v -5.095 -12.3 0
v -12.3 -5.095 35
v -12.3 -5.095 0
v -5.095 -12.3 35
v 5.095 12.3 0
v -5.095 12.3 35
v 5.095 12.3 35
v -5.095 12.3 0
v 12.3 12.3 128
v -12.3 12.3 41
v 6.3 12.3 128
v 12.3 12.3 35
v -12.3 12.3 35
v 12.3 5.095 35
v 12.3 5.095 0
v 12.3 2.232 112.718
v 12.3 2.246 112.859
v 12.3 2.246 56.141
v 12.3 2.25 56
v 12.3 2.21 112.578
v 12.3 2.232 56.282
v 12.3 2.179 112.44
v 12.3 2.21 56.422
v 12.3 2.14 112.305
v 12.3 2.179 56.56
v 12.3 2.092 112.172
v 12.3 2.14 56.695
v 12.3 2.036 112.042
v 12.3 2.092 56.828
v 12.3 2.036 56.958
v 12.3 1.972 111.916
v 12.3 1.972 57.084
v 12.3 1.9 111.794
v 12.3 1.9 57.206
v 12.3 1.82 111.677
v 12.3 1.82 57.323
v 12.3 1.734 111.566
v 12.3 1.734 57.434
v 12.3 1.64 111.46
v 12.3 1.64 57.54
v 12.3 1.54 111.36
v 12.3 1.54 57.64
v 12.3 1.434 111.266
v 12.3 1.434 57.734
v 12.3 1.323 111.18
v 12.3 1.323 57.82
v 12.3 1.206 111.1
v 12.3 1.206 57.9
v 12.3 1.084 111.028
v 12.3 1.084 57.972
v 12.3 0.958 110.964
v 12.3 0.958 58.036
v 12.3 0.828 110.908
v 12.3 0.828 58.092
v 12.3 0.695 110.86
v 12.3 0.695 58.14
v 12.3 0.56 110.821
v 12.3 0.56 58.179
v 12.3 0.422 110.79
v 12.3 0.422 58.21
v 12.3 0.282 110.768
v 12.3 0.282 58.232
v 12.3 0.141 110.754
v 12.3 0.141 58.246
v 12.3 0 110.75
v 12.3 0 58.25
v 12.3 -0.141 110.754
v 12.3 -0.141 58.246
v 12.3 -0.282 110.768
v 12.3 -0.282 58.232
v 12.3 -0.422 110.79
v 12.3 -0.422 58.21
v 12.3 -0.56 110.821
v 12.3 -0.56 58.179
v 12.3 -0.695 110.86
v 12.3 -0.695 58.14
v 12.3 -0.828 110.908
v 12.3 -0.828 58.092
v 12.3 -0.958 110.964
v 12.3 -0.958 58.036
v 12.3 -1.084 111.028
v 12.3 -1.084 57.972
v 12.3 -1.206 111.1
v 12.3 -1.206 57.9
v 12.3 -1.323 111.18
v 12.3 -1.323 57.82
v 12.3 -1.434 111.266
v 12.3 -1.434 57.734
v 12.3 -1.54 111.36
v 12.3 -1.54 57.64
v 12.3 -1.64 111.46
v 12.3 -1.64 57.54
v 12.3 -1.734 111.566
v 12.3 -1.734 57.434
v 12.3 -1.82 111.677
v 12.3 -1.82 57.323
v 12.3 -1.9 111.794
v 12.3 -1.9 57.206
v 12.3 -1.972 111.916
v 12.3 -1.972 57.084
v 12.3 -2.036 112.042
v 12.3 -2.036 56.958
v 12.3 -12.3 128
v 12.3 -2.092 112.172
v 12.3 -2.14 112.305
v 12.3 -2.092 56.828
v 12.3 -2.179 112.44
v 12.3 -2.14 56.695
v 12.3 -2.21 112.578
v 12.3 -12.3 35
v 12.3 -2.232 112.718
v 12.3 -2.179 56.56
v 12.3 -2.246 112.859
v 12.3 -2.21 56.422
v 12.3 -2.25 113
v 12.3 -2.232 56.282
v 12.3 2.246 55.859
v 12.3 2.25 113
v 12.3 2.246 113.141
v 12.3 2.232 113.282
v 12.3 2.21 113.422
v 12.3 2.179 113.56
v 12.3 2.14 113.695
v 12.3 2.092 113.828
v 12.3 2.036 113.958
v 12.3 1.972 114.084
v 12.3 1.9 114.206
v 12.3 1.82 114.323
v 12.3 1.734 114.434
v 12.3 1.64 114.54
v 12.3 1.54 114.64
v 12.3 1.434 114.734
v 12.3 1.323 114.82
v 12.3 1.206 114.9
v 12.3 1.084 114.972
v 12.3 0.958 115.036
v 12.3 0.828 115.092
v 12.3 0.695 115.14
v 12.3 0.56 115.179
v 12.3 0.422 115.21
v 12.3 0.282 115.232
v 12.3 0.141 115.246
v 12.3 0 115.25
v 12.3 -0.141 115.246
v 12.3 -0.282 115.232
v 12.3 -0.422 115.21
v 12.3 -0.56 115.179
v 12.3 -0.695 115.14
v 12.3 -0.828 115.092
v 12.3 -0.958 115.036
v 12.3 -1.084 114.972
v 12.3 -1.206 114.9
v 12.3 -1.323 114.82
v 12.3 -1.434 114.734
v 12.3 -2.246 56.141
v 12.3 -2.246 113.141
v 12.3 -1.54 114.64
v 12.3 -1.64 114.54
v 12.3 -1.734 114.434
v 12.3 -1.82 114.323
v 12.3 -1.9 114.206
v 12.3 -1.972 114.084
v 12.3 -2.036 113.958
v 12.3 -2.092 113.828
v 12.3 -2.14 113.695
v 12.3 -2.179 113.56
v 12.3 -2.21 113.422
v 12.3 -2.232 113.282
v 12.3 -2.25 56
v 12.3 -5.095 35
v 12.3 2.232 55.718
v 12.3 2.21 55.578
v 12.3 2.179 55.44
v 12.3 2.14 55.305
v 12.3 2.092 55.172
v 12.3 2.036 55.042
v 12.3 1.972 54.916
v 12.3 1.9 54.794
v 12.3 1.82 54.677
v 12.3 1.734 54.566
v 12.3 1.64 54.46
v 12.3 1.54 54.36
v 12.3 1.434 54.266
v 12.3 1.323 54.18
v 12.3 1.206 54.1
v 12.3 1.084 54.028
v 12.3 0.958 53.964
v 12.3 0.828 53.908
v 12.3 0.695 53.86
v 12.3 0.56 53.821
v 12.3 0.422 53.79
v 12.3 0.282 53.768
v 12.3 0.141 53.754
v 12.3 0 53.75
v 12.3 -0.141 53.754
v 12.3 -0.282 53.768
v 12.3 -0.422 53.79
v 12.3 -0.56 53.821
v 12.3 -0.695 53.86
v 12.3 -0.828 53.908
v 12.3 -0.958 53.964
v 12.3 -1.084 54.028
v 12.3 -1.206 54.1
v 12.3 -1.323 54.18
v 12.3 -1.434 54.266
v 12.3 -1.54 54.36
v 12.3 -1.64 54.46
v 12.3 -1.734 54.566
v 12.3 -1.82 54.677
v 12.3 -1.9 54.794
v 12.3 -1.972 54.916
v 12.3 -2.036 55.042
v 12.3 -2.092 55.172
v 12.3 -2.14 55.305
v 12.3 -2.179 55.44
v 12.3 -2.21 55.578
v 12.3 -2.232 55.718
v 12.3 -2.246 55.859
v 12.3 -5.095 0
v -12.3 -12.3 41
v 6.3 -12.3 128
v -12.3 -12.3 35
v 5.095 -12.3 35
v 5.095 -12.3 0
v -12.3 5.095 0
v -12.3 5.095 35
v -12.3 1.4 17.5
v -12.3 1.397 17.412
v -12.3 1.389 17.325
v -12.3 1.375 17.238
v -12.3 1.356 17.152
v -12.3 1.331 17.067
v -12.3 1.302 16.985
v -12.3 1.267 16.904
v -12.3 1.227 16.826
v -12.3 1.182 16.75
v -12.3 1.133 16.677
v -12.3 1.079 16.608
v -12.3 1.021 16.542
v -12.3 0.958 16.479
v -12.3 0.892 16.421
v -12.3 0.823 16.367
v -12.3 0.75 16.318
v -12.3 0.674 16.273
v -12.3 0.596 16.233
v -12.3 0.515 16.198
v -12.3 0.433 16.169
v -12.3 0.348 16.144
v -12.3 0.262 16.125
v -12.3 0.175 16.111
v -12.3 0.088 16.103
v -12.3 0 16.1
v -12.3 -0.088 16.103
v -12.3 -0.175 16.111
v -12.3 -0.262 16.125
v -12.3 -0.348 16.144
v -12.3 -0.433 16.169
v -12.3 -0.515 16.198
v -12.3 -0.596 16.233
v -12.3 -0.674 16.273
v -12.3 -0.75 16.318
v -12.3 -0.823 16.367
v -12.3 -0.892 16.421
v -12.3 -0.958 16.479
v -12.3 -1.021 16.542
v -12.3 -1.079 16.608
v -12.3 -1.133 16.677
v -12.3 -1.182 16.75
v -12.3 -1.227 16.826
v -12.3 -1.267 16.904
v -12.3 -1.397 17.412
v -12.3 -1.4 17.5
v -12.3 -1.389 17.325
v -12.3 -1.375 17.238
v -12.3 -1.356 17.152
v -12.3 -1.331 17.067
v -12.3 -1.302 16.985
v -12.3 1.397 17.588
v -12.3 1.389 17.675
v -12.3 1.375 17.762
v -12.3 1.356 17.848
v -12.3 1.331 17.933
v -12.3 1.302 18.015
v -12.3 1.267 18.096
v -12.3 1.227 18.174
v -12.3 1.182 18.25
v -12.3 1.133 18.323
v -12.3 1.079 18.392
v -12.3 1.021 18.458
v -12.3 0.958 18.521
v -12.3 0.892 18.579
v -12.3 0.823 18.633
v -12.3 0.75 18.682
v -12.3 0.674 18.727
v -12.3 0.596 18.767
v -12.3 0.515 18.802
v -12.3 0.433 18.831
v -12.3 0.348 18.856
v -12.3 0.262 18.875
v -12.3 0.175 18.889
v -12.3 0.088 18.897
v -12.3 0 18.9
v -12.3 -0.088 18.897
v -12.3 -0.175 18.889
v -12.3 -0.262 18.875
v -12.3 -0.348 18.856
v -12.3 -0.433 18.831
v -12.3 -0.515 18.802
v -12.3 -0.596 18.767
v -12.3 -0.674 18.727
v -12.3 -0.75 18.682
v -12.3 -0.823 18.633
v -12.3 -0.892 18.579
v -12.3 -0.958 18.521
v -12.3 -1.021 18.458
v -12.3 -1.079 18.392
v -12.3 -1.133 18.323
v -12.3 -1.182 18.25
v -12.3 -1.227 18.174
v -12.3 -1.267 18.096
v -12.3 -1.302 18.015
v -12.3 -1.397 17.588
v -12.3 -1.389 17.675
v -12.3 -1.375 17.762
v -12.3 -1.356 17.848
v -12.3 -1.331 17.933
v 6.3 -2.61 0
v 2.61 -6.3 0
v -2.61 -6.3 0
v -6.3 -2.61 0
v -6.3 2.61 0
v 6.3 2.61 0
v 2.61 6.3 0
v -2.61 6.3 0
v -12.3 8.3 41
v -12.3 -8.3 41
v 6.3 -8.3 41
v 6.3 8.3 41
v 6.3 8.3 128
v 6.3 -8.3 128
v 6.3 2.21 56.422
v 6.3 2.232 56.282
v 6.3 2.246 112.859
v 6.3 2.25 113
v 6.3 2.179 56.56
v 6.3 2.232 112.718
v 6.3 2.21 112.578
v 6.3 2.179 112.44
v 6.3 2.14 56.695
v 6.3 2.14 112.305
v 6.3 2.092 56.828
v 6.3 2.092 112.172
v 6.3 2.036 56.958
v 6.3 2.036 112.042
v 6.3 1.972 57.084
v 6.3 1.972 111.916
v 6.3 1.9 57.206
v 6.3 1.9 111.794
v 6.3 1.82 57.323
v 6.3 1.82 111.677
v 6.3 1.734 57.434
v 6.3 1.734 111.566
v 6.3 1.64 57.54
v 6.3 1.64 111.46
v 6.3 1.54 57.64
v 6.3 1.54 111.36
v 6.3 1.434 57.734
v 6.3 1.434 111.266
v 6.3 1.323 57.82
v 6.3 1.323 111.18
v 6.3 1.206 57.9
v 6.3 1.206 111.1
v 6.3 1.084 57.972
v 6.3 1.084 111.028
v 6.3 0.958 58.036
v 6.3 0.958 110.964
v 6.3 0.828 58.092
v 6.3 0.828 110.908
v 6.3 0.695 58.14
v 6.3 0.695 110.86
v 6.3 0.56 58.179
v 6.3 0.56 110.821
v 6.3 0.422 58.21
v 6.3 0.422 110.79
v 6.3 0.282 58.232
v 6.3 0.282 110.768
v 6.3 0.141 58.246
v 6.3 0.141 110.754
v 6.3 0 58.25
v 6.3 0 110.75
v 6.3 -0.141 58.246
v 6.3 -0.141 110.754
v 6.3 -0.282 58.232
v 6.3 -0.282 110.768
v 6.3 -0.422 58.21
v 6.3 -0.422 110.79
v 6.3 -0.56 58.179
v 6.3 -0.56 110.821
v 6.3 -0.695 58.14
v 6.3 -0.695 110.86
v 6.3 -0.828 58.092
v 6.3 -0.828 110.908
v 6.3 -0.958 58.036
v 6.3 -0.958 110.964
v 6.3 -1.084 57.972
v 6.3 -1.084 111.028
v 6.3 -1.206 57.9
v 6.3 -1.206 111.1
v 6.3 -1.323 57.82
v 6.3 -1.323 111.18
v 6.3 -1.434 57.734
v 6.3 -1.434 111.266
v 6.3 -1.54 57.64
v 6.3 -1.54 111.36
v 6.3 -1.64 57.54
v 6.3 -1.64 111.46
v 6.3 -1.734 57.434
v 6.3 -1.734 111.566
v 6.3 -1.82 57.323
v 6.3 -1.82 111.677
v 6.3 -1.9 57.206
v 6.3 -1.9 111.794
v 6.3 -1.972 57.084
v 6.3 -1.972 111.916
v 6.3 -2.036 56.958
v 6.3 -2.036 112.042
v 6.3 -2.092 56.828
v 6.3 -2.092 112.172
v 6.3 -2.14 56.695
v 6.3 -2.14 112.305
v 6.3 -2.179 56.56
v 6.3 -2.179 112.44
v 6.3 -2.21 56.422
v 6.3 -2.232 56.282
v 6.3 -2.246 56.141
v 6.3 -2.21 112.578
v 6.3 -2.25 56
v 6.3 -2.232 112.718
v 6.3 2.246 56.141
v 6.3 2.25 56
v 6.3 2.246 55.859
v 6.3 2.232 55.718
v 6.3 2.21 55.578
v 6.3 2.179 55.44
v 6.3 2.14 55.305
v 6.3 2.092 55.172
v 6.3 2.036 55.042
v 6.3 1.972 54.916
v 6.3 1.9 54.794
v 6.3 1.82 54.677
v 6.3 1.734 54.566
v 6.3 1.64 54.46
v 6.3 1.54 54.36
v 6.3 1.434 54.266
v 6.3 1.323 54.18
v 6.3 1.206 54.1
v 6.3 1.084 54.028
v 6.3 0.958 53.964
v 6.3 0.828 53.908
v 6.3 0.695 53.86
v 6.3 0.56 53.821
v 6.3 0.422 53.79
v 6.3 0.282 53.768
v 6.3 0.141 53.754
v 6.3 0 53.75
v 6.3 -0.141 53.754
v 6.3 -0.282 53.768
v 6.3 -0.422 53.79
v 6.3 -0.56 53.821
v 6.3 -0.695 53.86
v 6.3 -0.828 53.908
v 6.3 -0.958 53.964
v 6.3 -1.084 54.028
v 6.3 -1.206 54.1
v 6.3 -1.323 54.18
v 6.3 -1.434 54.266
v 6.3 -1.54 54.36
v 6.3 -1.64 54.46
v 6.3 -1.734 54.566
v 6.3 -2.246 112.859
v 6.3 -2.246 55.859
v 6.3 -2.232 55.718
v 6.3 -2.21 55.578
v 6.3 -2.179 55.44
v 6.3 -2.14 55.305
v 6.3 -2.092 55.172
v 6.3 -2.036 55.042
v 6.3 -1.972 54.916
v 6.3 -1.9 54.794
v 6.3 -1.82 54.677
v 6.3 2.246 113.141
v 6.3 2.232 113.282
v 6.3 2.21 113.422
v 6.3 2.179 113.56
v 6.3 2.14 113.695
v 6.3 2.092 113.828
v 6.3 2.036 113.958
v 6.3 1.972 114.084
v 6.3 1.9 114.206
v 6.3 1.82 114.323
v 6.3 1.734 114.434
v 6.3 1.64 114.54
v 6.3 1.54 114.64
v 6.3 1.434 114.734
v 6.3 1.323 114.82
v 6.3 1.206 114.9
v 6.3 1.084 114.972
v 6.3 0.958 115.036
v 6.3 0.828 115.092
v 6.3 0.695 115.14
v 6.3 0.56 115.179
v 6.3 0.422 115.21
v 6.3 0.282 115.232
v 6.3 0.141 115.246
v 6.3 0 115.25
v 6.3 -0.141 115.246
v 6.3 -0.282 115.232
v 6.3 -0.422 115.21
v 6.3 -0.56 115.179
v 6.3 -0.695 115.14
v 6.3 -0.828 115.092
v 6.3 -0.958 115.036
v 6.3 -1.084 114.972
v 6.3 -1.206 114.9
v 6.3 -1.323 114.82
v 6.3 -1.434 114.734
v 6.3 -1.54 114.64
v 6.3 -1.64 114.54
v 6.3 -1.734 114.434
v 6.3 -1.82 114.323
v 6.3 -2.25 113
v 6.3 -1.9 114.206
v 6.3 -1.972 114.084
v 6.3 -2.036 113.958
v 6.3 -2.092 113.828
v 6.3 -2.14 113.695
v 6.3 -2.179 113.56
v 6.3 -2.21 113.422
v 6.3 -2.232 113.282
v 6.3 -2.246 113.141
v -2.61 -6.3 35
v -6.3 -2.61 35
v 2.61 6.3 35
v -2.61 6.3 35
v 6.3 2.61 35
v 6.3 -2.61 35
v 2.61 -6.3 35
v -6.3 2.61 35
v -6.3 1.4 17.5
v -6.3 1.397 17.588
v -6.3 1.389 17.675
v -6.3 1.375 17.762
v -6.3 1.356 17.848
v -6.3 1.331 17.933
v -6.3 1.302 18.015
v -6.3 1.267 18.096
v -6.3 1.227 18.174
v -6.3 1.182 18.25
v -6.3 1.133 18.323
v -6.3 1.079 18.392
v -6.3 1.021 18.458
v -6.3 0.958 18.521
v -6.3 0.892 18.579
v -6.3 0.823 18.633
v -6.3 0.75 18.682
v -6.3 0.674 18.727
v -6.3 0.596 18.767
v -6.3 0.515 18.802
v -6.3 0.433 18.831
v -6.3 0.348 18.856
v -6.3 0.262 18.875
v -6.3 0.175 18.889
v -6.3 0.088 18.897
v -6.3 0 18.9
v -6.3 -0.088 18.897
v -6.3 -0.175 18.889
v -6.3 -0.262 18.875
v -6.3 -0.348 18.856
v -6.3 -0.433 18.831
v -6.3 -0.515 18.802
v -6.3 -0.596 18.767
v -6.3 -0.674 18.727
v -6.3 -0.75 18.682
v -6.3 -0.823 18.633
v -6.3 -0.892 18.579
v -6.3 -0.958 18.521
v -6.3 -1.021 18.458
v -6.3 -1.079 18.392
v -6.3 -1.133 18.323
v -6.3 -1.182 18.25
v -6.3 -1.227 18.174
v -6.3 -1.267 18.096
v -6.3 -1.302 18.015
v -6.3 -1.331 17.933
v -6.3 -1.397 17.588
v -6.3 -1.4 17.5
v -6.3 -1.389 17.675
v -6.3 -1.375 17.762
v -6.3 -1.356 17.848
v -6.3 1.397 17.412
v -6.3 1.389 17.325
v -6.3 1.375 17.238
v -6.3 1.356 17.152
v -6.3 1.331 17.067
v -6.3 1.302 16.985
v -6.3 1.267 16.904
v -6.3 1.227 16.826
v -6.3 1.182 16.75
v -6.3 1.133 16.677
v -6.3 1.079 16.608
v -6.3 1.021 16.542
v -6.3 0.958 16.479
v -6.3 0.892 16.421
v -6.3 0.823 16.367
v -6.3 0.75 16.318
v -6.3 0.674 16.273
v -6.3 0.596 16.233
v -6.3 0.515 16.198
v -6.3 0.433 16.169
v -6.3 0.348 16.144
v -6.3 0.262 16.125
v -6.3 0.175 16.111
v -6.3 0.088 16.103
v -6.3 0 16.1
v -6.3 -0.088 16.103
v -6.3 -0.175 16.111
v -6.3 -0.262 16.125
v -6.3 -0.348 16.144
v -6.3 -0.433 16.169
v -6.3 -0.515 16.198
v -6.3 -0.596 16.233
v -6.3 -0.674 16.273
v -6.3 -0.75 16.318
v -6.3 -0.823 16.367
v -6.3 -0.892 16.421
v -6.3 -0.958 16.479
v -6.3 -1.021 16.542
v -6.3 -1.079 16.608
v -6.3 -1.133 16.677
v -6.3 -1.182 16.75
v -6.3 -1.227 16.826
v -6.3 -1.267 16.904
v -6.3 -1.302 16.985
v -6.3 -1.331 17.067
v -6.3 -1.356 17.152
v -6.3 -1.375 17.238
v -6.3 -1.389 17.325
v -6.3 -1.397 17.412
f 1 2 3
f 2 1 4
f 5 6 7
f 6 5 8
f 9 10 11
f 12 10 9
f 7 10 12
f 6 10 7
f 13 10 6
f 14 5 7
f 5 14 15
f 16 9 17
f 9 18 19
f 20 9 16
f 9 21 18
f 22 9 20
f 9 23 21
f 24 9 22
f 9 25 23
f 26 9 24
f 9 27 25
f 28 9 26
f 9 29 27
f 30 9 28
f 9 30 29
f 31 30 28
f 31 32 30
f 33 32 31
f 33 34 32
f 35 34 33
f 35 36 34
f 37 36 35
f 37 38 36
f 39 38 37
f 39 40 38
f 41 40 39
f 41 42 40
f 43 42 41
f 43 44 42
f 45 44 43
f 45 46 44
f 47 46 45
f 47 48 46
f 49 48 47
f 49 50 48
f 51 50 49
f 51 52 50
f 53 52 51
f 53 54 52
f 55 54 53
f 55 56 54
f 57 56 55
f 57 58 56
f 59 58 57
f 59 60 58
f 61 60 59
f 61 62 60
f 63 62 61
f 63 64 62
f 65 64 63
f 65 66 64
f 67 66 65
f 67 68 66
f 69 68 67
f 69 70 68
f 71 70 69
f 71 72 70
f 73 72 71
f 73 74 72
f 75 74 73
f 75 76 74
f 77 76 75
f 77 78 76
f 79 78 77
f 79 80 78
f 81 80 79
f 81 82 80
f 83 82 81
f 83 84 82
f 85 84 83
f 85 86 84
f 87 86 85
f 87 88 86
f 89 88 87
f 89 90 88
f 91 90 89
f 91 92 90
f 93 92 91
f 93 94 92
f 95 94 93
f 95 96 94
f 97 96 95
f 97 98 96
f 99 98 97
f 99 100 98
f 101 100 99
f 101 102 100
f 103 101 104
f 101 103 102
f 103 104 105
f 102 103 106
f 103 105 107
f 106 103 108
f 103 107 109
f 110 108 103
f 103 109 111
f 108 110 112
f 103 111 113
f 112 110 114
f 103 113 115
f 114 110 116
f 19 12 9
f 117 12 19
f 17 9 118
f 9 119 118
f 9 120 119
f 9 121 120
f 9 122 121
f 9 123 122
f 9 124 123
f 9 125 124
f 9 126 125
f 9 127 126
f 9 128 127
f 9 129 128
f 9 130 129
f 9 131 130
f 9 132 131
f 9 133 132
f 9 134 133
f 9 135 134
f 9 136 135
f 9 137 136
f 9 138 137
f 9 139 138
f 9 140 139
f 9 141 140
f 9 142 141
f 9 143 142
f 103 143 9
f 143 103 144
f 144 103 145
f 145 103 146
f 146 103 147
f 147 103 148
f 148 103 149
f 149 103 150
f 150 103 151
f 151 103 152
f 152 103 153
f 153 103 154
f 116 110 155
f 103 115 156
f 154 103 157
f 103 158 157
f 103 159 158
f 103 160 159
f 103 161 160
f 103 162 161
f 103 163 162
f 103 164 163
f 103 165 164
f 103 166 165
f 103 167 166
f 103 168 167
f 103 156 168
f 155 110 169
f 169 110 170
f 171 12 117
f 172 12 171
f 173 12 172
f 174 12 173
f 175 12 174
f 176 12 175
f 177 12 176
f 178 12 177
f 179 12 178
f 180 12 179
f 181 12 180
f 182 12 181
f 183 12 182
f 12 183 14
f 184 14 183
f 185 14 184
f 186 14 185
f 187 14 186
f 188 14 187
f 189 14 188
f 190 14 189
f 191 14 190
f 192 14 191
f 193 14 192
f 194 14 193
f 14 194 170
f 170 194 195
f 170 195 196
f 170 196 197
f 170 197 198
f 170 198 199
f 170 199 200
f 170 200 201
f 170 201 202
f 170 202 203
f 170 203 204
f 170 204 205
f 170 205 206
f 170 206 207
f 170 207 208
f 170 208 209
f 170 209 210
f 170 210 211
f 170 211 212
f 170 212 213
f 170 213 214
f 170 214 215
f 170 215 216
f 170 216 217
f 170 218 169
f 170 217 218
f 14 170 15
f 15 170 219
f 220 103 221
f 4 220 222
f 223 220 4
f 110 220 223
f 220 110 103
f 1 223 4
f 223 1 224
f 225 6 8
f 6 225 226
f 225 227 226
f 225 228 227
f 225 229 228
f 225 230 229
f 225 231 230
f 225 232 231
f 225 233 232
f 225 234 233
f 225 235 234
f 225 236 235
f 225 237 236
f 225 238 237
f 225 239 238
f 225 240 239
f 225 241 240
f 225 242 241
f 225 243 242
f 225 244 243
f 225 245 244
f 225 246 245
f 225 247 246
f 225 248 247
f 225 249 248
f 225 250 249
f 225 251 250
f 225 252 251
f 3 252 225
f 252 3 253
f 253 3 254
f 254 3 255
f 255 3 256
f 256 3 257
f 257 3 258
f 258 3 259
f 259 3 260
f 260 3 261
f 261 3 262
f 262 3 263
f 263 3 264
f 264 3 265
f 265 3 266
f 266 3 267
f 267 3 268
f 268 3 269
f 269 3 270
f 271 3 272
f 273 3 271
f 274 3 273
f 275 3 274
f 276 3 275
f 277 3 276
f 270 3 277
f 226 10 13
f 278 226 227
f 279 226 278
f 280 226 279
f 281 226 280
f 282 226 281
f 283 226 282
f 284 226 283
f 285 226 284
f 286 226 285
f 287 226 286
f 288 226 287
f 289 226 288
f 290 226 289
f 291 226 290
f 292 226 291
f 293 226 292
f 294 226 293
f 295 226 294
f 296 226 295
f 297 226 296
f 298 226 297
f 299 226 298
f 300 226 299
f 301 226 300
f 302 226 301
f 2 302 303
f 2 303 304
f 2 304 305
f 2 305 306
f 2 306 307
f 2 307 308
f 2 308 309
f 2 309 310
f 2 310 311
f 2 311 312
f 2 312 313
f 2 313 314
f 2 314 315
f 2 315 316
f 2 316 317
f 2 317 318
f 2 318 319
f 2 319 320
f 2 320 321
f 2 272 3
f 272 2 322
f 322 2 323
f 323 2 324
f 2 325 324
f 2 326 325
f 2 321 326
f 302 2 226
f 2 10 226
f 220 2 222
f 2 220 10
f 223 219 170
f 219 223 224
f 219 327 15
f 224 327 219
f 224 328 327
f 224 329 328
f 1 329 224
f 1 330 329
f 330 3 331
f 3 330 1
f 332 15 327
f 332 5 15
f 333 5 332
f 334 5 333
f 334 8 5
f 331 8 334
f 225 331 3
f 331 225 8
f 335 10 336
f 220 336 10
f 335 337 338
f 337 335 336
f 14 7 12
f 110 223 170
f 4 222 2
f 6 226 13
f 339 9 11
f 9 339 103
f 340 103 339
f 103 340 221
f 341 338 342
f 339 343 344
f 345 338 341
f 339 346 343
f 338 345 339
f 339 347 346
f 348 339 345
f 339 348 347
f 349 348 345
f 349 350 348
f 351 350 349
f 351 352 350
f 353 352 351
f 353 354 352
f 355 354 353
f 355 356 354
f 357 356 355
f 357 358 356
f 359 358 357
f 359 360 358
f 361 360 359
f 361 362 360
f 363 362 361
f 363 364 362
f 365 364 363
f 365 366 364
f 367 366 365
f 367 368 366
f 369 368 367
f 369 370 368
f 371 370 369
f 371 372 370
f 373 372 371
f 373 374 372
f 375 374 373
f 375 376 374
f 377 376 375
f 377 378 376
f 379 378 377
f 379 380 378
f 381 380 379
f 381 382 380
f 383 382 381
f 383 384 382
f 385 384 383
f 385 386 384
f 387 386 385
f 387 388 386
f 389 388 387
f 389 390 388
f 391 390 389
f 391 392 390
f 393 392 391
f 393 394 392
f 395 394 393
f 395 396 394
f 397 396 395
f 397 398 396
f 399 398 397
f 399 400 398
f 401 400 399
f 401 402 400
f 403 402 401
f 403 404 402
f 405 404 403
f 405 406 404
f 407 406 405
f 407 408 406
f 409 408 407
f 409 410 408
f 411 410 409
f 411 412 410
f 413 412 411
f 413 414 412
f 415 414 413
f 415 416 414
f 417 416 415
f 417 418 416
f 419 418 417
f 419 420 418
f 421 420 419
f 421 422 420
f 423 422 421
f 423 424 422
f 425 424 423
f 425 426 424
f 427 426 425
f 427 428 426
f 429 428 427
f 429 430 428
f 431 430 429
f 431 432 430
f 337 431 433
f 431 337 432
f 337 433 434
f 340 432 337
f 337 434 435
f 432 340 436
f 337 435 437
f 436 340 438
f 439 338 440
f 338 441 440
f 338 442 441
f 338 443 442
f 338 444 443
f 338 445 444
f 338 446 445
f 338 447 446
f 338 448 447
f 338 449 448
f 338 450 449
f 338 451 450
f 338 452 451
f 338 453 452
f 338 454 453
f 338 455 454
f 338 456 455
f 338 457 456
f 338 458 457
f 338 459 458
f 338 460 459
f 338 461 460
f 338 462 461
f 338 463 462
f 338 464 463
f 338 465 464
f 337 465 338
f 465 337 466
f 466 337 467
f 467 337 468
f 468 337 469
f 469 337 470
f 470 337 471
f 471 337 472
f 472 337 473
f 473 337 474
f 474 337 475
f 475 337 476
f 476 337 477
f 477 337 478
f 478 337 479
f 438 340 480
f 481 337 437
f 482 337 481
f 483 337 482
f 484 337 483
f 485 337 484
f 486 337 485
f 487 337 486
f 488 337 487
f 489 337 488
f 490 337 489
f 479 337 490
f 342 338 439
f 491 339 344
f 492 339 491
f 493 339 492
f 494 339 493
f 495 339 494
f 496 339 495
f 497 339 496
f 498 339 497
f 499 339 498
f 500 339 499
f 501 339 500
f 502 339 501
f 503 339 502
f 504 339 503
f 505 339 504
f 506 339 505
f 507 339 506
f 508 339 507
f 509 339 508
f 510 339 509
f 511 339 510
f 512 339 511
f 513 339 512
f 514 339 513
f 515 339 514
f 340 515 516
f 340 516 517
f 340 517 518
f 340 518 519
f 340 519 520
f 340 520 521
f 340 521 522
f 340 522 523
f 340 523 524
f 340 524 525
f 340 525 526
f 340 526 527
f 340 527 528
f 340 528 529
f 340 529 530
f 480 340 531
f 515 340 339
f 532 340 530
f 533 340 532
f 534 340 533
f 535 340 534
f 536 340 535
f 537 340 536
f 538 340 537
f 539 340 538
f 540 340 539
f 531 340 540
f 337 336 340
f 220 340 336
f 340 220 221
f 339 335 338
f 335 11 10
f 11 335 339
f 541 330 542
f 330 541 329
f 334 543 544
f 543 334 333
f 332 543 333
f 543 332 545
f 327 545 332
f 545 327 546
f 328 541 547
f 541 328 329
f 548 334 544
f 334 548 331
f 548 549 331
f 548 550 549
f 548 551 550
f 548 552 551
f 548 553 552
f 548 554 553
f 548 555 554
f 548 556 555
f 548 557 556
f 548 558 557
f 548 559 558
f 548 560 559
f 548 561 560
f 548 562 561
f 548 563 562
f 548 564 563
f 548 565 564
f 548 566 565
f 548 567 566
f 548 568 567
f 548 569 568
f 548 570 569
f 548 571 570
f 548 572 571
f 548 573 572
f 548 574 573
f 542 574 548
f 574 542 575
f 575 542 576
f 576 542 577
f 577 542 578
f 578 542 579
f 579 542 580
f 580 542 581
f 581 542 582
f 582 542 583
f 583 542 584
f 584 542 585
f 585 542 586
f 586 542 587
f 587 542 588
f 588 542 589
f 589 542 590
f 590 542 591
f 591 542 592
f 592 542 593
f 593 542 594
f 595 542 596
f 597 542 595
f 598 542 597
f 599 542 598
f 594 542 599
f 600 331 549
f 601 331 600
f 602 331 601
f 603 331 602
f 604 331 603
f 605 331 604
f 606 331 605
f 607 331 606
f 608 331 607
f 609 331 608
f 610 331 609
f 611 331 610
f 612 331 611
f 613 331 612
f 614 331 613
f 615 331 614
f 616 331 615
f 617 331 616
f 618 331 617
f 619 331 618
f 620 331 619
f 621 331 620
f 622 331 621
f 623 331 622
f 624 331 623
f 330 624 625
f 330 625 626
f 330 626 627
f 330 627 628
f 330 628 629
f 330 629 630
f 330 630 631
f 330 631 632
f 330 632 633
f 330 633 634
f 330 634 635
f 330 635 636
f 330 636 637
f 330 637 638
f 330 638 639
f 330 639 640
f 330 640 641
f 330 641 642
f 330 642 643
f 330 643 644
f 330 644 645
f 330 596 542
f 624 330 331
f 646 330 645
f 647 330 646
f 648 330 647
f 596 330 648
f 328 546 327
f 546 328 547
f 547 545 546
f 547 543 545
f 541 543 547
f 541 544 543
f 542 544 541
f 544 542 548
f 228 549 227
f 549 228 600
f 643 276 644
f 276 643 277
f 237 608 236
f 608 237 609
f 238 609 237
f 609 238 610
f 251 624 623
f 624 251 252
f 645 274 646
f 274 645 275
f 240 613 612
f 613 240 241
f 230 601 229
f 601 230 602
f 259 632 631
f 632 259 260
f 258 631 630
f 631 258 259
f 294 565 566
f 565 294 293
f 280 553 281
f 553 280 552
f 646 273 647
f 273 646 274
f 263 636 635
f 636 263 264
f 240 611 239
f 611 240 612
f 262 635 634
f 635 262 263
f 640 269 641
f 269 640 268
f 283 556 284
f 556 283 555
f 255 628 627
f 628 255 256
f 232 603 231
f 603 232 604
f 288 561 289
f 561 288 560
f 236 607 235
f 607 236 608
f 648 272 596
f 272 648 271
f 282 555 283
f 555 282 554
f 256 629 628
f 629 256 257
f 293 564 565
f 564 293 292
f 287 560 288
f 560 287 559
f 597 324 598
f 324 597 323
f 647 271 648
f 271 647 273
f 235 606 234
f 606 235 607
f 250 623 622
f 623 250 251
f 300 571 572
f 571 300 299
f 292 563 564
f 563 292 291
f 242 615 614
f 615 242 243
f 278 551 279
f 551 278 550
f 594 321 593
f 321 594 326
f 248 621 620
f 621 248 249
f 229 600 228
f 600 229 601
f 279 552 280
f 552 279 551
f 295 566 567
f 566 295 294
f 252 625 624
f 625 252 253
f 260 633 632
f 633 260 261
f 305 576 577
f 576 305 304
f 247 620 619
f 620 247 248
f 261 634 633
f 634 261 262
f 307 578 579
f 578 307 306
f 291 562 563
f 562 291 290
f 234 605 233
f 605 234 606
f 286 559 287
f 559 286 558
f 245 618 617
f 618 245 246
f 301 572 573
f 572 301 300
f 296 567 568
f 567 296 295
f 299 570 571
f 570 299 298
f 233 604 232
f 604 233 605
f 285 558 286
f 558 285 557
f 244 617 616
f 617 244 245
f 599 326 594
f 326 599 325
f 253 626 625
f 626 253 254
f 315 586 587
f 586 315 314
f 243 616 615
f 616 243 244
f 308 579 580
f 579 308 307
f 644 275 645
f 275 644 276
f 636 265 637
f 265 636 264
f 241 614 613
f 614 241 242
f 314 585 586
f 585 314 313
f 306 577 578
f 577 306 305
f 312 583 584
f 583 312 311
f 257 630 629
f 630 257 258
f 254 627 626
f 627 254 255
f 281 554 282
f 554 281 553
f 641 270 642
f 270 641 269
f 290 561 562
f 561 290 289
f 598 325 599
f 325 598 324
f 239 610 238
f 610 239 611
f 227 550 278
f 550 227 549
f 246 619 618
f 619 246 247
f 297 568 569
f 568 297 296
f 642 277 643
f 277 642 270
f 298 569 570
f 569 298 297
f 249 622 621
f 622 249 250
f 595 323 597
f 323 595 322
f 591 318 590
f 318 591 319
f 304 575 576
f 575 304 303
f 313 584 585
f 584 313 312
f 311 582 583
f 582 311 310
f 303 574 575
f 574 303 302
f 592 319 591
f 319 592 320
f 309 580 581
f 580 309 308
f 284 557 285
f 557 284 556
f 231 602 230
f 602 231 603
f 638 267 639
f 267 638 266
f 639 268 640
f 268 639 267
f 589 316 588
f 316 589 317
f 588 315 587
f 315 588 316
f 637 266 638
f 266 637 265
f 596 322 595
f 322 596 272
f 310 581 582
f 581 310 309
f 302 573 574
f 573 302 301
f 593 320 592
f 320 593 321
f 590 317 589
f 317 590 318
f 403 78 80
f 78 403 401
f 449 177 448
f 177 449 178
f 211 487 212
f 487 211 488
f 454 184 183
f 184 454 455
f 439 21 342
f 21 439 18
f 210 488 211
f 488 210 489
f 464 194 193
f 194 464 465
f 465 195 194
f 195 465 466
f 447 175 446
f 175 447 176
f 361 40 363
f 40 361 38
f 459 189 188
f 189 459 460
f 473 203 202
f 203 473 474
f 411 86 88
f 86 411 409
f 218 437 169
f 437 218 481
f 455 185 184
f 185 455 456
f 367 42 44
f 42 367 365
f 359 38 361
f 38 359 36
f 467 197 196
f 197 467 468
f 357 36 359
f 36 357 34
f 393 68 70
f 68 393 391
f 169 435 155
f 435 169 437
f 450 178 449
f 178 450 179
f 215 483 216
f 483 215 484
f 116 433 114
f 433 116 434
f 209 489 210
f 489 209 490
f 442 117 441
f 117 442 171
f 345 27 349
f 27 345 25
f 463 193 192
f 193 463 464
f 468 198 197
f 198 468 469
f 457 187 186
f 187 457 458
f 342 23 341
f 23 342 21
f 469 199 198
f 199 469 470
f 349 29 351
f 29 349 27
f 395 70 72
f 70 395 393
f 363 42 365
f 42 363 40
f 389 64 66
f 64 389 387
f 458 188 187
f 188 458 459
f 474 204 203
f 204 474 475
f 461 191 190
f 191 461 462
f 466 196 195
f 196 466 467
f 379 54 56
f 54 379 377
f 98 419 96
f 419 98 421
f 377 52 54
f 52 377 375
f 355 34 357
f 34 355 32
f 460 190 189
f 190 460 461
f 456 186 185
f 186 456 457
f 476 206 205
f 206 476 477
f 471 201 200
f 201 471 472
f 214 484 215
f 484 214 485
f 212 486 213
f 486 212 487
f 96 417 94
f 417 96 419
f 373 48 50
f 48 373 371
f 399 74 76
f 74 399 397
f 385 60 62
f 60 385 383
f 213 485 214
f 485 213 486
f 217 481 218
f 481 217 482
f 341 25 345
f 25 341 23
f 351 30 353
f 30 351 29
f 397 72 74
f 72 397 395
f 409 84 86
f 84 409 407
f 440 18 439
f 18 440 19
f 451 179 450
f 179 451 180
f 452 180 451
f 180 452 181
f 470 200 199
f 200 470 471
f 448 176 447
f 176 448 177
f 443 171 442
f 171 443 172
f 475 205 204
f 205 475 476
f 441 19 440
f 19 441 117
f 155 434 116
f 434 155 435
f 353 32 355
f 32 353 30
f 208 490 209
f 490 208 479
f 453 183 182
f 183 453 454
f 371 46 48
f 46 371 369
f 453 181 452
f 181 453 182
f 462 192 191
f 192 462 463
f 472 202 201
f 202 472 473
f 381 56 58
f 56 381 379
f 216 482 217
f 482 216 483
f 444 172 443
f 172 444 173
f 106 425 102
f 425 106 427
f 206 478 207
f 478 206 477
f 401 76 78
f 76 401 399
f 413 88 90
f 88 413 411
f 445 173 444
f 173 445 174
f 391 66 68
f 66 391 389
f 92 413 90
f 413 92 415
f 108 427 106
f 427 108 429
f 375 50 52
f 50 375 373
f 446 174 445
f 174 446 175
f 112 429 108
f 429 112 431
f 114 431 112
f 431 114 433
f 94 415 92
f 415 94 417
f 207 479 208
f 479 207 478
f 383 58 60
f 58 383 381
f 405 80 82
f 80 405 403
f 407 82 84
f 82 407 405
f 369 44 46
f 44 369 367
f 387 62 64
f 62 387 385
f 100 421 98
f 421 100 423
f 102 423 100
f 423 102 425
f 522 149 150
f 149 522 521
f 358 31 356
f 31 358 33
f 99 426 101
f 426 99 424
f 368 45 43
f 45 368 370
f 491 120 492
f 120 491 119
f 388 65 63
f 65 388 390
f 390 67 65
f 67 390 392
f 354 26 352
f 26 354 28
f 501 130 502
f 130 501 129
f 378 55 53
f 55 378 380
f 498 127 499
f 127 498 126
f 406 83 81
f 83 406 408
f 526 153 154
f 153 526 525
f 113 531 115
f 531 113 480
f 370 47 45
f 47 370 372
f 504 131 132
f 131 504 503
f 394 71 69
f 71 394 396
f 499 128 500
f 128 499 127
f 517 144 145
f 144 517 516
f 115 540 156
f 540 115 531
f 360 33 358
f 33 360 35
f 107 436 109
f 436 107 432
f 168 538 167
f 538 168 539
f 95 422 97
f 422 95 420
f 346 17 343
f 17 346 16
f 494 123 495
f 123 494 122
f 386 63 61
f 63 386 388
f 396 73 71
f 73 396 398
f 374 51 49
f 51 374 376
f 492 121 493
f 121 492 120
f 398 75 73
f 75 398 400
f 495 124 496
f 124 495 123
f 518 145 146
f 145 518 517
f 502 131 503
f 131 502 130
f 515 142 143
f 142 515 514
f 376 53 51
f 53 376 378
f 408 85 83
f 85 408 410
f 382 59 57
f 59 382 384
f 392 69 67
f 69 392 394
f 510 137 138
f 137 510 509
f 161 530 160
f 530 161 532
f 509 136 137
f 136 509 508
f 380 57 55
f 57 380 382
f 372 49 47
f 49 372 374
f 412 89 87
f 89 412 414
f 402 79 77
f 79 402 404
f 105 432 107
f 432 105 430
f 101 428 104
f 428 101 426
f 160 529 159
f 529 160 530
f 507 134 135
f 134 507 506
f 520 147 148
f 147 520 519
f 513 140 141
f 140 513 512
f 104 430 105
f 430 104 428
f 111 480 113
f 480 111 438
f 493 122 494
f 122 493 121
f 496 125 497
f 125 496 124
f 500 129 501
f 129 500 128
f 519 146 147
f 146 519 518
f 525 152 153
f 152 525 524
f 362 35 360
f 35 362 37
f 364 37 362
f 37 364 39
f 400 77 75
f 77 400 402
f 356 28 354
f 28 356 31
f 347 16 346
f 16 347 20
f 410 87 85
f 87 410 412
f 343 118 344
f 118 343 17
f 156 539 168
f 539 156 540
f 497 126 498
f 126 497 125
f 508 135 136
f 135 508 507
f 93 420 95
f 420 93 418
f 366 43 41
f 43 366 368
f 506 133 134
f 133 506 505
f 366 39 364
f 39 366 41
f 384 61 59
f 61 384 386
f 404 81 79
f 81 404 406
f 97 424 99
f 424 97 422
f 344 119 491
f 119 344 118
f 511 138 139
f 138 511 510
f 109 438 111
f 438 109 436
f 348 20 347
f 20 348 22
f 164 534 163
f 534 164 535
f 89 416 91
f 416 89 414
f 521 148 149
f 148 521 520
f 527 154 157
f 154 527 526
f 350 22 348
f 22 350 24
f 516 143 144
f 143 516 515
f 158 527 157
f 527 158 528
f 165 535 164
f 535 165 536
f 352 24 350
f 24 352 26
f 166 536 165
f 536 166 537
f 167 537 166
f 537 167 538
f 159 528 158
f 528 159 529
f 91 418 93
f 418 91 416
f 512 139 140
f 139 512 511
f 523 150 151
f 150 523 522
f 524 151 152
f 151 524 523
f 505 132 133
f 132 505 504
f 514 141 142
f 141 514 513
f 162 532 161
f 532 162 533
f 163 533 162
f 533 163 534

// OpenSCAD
/* Parametric Speaker Stand Keyhole Mount v4 (Double Octagon)
   All measurements are in millimeters.
*/

$fn = 100; // High resolution for smooth cylinders

// --- PARAMETERS ---

// Pole Dimensions
pipe_diameter = 12.0;
pipe_clearance = 0.6; // 12.6mm total inner diameter
collar_wall_thickness = 6;
collar_height = 35;

// Speaker Mount Dimensions
hole_spacing = 57.0;
screw_hole_diameter = 4.5; // Clearance hole for an M4 bolt
plate_margin = 15; // Extra material above/below holes
plate_height = hole_spacing + (plate_margin * 2);

// Derived Values (Do not change)
collar_d = pipe_diameter + pipe_clearance + (collar_wall_thickness * 2);
collar_r = collar_d / 2;

// --- OCTAGON MATH ---
// To get exact flat-to-flat distances, we calculate the circumscribed diameters
inner_hole_size = pipe_diameter + pipe_clearance;
inner_octagon_d = inner_hole_size / cos(22.5); 
outer_octagon_d = collar_d / cos(22.5);

// Bracket Dimensions
bracket_width = collar_d;
bracket_thickness = 6; // CF-PLA is stiff, 6mm with gussets is very strong

// Gusset Dimensions
gusset_thickness = 4;
gusset_length = collar_d - bracket_thickness;
gusset_height = plate_height; // Full height for maximum rigidity

// --- MODULE ---

module speaker_mount() {
    difference() {
        union() {
            // 1. The Collar (Outer Octagon for support-free flat printing)
            rotate([0, 0, 22.5])
                cylinder(h = collar_height, d = outer_octagon_d, $fn = 8);
            
            // 2. The Cap / Base Plate 
            translate([0, 0, collar_height])
                rotate([0, 0, 22.5])
                cylinder(h = bracket_thickness, d = outer_octagon_d, $fn = 8);
            
            // Squares off the front of the cap so the bracket sits flush across its width
            translate([-collar_r, -collar_r, collar_height])
                cube([collar_d, collar_d, bracket_thickness]);

            // 3. The Vertical Arm 
            // Positioned perfectly flush with the outside front edge of the collar
            translate([collar_r - bracket_thickness, -bracket_width/2, collar_height + bracket_thickness])
                cube([bracket_thickness, bracket_width, plate_height]);

            // 4. Left Support Gusset (Inside the L)
            translate([collar_r - bracket_thickness, -bracket_width/2 + gusset_thickness, collar_height + bracket_thickness])
                rotate([90, 0, 0])
                linear_extrude(height = gusset_thickness)
                polygon([[0,0], [-gusset_length, 0], [0, gusset_height]]);

            // 5. Right Support Gusset (Inside the L)
            translate([collar_r - bracket_thickness, bracket_width/2, collar_height + bracket_thickness])
                rotate([90, 0, 0])
                linear_extrude(height = gusset_thickness)
                polygon([[0,0], [-gusset_length, 0], [0, gusset_height]]);
        }

        // --- SUBTRACTIONS (Holes) ---

        // A. Main Pipe Hole (Inner Octagon)
        translate([0, 0, -1])
            rotate([0, 0, 22.5]) 
            cylinder(h = collar_height + 1, d = inner_octagon_d, $fn = 8);

        // B. Set Screw Hole (On the back of the collar, opposite the speaker)
        translate([-collar_d, 0, collar_height / 2])
            rotate([0, 90, 0])
            cylinder(h = collar_d, d = 2.8);

        // C. Bottom Speaker Mount Hole
        translate([collar_r - bracket_thickness - 1, 0, collar_height + bracket_thickness + plate_margin])
            rotate([0, 90, 0])
            cylinder(h = bracket_thickness + 2, d = screw_hole_diameter);

        // D. Top Speaker Mount Hole
        translate([collar_r - bracket_thickness - 1, 0, collar_height + bracket_thickness + plate_margin + hole_spacing])
            rotate([0, 90, 0])
            cylinder(h = bracket_thickness + 2, d = screw_hole_diameter);
    }
}

// Render the part
speaker_mount();
